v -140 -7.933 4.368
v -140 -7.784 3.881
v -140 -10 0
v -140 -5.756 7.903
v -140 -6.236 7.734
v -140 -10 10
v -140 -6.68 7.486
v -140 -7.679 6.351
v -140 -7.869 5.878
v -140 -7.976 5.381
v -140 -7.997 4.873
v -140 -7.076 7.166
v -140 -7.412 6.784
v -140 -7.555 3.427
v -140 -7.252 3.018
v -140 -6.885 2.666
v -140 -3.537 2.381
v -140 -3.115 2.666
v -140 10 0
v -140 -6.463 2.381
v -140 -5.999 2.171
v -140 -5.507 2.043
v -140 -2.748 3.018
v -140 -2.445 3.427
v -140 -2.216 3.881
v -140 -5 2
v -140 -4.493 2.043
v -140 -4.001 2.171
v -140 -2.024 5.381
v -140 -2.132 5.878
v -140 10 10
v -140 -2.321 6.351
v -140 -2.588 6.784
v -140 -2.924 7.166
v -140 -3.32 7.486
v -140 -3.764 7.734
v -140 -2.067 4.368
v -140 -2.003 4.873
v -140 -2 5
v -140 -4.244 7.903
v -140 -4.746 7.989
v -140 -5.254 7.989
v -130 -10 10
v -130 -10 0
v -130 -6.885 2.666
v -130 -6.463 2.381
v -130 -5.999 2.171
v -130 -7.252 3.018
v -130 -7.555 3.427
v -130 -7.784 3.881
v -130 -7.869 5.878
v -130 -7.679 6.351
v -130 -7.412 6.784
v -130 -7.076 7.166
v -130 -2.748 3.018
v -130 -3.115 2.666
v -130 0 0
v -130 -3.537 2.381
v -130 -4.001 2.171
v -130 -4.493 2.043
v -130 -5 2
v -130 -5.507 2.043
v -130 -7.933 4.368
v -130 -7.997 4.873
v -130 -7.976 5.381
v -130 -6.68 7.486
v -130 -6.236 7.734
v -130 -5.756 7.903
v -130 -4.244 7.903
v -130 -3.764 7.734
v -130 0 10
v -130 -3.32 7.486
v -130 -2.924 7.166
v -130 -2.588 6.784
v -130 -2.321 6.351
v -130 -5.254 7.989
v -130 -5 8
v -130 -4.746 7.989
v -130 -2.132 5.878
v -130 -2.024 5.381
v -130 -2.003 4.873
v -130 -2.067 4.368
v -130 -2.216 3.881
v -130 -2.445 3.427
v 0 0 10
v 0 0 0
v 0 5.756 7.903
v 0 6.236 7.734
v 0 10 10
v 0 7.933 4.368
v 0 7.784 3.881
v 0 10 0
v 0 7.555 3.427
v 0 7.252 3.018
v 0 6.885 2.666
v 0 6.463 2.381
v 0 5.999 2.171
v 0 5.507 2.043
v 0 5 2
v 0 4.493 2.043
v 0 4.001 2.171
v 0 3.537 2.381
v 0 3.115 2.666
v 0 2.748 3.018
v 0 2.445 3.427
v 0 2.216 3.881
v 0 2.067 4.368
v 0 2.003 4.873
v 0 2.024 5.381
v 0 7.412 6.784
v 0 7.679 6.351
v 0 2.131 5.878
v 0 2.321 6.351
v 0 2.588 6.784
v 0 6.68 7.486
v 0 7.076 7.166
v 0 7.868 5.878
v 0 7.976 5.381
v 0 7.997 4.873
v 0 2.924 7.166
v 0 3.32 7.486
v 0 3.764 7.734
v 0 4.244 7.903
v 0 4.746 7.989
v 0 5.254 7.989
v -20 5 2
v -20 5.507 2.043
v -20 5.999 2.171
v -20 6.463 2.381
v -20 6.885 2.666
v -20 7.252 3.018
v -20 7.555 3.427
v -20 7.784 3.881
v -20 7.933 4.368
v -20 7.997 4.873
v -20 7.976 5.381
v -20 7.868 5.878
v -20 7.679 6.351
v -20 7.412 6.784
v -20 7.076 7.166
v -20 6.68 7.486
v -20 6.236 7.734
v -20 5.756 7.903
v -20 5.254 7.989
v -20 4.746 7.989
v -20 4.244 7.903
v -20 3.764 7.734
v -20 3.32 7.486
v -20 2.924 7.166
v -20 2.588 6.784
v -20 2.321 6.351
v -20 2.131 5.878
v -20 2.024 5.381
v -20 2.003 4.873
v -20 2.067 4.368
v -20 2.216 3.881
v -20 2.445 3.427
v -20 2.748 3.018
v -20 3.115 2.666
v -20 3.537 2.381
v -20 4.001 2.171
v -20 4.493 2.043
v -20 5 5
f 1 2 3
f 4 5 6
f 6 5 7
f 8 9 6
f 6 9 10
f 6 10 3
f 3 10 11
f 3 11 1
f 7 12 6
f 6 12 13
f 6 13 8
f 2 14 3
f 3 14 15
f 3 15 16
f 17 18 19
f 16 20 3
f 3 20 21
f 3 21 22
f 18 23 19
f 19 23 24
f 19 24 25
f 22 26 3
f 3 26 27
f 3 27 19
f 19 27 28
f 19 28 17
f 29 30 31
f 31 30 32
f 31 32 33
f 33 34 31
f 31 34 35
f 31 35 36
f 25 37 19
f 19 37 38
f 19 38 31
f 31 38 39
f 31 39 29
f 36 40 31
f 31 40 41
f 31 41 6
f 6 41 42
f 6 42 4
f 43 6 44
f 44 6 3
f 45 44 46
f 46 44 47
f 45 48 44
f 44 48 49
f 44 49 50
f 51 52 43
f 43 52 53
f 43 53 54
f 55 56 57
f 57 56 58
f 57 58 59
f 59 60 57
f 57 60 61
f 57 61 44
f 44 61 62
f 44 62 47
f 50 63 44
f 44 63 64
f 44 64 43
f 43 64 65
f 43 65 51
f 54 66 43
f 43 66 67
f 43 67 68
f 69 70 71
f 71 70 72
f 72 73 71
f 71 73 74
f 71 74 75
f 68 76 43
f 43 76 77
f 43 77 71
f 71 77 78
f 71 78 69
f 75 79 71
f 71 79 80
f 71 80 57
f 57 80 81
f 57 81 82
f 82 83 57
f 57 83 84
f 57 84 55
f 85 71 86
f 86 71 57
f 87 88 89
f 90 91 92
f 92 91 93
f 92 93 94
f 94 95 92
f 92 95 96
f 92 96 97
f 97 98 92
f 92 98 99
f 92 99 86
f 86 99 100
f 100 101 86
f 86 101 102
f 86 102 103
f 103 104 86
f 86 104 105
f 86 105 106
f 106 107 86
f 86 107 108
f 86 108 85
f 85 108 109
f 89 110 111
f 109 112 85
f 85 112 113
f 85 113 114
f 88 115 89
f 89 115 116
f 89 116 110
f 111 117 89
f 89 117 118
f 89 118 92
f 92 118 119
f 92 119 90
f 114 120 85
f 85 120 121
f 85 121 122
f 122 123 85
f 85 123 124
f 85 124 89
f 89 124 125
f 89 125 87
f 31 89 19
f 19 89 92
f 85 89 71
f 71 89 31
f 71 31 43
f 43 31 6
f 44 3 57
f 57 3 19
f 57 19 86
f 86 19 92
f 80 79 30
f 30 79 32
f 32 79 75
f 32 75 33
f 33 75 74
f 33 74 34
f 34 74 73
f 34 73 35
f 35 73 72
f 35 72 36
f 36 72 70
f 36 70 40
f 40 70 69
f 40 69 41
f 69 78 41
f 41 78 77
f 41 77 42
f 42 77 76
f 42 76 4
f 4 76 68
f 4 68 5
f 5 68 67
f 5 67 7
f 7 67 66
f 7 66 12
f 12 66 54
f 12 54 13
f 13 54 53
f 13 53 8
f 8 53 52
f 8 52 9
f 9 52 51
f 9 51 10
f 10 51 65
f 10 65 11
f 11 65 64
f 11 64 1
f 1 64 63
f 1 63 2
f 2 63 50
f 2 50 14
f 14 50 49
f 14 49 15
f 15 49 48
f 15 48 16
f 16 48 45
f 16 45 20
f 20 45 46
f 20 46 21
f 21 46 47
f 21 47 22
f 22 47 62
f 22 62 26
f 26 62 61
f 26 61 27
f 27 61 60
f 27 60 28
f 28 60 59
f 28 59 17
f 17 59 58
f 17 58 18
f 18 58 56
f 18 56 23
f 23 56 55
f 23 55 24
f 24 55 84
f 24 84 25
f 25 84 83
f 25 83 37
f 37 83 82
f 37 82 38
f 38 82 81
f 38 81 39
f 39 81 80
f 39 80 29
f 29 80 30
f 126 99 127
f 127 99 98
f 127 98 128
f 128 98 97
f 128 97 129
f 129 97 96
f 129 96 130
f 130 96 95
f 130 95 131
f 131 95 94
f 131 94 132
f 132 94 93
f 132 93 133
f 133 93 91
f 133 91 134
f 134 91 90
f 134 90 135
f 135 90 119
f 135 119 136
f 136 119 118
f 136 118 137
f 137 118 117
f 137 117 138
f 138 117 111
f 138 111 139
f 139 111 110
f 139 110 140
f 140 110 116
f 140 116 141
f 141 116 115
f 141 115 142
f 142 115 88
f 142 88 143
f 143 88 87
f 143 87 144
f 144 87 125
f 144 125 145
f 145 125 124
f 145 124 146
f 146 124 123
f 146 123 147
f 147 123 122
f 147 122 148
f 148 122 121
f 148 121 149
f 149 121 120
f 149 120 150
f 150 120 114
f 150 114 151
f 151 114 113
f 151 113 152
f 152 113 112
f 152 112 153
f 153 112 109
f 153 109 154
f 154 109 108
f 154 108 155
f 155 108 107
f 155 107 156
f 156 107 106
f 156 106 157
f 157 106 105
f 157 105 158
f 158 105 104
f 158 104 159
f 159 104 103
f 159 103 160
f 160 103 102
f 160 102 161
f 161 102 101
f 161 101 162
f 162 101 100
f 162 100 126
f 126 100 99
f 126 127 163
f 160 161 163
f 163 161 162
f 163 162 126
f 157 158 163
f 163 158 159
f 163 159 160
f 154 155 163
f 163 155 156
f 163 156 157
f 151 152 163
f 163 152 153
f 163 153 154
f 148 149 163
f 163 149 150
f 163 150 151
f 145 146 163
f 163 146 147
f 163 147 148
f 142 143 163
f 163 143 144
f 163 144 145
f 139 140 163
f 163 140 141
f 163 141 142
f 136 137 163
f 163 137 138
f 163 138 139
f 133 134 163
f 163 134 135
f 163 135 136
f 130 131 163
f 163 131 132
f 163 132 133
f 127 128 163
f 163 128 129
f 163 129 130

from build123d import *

# Parameters (mm, degrees)
BOSS_EXTRUDE1_DEPTH = 10
SKETCH4_R           = 3
CUT_EXTRUDE2_DEPTH  = 150
SKETCH4_3_R         = 3
CUT_EXTRUDE3_DEPTH  = 20


with BuildPart() as part:
    # Sketch1 → Boss-Extrude1 (new body)
    with BuildSketch(Plane.XY):
        Polygon((-140, 10), (0, 10), (0, 0), (-130, 0), (-130, -10), (-140, -10), align=None)
    extrude(amount=BOSS_EXTRUDE1_DEPTH)

    # Sketch4 → Cut-Extrude2 (cut)
    with BuildSketch(Plane(origin=(0, 0, 0), x_dir=(0, 0, -1), z_dir=(1, 0, 0))):
        with Locations((-5, -5)):
            Circle(SKETCH4_R)
    extrude(amount=-CUT_EXTRUDE2_DEPTH, mode=Mode.SUBTRACT)

    # Sketch4<3> → Cut-Extrude3 (cut)
    with BuildSketch(Plane(origin=(0, 0, 0), x_dir=(0, 0, -1), z_dir=(1, 0, 0))):
        with Locations((-5, 5)):
            Circle(SKETCH4_3_R)
    extrude(amount=-CUT_EXTRUDE3_DEPTH, mode=Mode.SUBTRACT)


solid = part.part
